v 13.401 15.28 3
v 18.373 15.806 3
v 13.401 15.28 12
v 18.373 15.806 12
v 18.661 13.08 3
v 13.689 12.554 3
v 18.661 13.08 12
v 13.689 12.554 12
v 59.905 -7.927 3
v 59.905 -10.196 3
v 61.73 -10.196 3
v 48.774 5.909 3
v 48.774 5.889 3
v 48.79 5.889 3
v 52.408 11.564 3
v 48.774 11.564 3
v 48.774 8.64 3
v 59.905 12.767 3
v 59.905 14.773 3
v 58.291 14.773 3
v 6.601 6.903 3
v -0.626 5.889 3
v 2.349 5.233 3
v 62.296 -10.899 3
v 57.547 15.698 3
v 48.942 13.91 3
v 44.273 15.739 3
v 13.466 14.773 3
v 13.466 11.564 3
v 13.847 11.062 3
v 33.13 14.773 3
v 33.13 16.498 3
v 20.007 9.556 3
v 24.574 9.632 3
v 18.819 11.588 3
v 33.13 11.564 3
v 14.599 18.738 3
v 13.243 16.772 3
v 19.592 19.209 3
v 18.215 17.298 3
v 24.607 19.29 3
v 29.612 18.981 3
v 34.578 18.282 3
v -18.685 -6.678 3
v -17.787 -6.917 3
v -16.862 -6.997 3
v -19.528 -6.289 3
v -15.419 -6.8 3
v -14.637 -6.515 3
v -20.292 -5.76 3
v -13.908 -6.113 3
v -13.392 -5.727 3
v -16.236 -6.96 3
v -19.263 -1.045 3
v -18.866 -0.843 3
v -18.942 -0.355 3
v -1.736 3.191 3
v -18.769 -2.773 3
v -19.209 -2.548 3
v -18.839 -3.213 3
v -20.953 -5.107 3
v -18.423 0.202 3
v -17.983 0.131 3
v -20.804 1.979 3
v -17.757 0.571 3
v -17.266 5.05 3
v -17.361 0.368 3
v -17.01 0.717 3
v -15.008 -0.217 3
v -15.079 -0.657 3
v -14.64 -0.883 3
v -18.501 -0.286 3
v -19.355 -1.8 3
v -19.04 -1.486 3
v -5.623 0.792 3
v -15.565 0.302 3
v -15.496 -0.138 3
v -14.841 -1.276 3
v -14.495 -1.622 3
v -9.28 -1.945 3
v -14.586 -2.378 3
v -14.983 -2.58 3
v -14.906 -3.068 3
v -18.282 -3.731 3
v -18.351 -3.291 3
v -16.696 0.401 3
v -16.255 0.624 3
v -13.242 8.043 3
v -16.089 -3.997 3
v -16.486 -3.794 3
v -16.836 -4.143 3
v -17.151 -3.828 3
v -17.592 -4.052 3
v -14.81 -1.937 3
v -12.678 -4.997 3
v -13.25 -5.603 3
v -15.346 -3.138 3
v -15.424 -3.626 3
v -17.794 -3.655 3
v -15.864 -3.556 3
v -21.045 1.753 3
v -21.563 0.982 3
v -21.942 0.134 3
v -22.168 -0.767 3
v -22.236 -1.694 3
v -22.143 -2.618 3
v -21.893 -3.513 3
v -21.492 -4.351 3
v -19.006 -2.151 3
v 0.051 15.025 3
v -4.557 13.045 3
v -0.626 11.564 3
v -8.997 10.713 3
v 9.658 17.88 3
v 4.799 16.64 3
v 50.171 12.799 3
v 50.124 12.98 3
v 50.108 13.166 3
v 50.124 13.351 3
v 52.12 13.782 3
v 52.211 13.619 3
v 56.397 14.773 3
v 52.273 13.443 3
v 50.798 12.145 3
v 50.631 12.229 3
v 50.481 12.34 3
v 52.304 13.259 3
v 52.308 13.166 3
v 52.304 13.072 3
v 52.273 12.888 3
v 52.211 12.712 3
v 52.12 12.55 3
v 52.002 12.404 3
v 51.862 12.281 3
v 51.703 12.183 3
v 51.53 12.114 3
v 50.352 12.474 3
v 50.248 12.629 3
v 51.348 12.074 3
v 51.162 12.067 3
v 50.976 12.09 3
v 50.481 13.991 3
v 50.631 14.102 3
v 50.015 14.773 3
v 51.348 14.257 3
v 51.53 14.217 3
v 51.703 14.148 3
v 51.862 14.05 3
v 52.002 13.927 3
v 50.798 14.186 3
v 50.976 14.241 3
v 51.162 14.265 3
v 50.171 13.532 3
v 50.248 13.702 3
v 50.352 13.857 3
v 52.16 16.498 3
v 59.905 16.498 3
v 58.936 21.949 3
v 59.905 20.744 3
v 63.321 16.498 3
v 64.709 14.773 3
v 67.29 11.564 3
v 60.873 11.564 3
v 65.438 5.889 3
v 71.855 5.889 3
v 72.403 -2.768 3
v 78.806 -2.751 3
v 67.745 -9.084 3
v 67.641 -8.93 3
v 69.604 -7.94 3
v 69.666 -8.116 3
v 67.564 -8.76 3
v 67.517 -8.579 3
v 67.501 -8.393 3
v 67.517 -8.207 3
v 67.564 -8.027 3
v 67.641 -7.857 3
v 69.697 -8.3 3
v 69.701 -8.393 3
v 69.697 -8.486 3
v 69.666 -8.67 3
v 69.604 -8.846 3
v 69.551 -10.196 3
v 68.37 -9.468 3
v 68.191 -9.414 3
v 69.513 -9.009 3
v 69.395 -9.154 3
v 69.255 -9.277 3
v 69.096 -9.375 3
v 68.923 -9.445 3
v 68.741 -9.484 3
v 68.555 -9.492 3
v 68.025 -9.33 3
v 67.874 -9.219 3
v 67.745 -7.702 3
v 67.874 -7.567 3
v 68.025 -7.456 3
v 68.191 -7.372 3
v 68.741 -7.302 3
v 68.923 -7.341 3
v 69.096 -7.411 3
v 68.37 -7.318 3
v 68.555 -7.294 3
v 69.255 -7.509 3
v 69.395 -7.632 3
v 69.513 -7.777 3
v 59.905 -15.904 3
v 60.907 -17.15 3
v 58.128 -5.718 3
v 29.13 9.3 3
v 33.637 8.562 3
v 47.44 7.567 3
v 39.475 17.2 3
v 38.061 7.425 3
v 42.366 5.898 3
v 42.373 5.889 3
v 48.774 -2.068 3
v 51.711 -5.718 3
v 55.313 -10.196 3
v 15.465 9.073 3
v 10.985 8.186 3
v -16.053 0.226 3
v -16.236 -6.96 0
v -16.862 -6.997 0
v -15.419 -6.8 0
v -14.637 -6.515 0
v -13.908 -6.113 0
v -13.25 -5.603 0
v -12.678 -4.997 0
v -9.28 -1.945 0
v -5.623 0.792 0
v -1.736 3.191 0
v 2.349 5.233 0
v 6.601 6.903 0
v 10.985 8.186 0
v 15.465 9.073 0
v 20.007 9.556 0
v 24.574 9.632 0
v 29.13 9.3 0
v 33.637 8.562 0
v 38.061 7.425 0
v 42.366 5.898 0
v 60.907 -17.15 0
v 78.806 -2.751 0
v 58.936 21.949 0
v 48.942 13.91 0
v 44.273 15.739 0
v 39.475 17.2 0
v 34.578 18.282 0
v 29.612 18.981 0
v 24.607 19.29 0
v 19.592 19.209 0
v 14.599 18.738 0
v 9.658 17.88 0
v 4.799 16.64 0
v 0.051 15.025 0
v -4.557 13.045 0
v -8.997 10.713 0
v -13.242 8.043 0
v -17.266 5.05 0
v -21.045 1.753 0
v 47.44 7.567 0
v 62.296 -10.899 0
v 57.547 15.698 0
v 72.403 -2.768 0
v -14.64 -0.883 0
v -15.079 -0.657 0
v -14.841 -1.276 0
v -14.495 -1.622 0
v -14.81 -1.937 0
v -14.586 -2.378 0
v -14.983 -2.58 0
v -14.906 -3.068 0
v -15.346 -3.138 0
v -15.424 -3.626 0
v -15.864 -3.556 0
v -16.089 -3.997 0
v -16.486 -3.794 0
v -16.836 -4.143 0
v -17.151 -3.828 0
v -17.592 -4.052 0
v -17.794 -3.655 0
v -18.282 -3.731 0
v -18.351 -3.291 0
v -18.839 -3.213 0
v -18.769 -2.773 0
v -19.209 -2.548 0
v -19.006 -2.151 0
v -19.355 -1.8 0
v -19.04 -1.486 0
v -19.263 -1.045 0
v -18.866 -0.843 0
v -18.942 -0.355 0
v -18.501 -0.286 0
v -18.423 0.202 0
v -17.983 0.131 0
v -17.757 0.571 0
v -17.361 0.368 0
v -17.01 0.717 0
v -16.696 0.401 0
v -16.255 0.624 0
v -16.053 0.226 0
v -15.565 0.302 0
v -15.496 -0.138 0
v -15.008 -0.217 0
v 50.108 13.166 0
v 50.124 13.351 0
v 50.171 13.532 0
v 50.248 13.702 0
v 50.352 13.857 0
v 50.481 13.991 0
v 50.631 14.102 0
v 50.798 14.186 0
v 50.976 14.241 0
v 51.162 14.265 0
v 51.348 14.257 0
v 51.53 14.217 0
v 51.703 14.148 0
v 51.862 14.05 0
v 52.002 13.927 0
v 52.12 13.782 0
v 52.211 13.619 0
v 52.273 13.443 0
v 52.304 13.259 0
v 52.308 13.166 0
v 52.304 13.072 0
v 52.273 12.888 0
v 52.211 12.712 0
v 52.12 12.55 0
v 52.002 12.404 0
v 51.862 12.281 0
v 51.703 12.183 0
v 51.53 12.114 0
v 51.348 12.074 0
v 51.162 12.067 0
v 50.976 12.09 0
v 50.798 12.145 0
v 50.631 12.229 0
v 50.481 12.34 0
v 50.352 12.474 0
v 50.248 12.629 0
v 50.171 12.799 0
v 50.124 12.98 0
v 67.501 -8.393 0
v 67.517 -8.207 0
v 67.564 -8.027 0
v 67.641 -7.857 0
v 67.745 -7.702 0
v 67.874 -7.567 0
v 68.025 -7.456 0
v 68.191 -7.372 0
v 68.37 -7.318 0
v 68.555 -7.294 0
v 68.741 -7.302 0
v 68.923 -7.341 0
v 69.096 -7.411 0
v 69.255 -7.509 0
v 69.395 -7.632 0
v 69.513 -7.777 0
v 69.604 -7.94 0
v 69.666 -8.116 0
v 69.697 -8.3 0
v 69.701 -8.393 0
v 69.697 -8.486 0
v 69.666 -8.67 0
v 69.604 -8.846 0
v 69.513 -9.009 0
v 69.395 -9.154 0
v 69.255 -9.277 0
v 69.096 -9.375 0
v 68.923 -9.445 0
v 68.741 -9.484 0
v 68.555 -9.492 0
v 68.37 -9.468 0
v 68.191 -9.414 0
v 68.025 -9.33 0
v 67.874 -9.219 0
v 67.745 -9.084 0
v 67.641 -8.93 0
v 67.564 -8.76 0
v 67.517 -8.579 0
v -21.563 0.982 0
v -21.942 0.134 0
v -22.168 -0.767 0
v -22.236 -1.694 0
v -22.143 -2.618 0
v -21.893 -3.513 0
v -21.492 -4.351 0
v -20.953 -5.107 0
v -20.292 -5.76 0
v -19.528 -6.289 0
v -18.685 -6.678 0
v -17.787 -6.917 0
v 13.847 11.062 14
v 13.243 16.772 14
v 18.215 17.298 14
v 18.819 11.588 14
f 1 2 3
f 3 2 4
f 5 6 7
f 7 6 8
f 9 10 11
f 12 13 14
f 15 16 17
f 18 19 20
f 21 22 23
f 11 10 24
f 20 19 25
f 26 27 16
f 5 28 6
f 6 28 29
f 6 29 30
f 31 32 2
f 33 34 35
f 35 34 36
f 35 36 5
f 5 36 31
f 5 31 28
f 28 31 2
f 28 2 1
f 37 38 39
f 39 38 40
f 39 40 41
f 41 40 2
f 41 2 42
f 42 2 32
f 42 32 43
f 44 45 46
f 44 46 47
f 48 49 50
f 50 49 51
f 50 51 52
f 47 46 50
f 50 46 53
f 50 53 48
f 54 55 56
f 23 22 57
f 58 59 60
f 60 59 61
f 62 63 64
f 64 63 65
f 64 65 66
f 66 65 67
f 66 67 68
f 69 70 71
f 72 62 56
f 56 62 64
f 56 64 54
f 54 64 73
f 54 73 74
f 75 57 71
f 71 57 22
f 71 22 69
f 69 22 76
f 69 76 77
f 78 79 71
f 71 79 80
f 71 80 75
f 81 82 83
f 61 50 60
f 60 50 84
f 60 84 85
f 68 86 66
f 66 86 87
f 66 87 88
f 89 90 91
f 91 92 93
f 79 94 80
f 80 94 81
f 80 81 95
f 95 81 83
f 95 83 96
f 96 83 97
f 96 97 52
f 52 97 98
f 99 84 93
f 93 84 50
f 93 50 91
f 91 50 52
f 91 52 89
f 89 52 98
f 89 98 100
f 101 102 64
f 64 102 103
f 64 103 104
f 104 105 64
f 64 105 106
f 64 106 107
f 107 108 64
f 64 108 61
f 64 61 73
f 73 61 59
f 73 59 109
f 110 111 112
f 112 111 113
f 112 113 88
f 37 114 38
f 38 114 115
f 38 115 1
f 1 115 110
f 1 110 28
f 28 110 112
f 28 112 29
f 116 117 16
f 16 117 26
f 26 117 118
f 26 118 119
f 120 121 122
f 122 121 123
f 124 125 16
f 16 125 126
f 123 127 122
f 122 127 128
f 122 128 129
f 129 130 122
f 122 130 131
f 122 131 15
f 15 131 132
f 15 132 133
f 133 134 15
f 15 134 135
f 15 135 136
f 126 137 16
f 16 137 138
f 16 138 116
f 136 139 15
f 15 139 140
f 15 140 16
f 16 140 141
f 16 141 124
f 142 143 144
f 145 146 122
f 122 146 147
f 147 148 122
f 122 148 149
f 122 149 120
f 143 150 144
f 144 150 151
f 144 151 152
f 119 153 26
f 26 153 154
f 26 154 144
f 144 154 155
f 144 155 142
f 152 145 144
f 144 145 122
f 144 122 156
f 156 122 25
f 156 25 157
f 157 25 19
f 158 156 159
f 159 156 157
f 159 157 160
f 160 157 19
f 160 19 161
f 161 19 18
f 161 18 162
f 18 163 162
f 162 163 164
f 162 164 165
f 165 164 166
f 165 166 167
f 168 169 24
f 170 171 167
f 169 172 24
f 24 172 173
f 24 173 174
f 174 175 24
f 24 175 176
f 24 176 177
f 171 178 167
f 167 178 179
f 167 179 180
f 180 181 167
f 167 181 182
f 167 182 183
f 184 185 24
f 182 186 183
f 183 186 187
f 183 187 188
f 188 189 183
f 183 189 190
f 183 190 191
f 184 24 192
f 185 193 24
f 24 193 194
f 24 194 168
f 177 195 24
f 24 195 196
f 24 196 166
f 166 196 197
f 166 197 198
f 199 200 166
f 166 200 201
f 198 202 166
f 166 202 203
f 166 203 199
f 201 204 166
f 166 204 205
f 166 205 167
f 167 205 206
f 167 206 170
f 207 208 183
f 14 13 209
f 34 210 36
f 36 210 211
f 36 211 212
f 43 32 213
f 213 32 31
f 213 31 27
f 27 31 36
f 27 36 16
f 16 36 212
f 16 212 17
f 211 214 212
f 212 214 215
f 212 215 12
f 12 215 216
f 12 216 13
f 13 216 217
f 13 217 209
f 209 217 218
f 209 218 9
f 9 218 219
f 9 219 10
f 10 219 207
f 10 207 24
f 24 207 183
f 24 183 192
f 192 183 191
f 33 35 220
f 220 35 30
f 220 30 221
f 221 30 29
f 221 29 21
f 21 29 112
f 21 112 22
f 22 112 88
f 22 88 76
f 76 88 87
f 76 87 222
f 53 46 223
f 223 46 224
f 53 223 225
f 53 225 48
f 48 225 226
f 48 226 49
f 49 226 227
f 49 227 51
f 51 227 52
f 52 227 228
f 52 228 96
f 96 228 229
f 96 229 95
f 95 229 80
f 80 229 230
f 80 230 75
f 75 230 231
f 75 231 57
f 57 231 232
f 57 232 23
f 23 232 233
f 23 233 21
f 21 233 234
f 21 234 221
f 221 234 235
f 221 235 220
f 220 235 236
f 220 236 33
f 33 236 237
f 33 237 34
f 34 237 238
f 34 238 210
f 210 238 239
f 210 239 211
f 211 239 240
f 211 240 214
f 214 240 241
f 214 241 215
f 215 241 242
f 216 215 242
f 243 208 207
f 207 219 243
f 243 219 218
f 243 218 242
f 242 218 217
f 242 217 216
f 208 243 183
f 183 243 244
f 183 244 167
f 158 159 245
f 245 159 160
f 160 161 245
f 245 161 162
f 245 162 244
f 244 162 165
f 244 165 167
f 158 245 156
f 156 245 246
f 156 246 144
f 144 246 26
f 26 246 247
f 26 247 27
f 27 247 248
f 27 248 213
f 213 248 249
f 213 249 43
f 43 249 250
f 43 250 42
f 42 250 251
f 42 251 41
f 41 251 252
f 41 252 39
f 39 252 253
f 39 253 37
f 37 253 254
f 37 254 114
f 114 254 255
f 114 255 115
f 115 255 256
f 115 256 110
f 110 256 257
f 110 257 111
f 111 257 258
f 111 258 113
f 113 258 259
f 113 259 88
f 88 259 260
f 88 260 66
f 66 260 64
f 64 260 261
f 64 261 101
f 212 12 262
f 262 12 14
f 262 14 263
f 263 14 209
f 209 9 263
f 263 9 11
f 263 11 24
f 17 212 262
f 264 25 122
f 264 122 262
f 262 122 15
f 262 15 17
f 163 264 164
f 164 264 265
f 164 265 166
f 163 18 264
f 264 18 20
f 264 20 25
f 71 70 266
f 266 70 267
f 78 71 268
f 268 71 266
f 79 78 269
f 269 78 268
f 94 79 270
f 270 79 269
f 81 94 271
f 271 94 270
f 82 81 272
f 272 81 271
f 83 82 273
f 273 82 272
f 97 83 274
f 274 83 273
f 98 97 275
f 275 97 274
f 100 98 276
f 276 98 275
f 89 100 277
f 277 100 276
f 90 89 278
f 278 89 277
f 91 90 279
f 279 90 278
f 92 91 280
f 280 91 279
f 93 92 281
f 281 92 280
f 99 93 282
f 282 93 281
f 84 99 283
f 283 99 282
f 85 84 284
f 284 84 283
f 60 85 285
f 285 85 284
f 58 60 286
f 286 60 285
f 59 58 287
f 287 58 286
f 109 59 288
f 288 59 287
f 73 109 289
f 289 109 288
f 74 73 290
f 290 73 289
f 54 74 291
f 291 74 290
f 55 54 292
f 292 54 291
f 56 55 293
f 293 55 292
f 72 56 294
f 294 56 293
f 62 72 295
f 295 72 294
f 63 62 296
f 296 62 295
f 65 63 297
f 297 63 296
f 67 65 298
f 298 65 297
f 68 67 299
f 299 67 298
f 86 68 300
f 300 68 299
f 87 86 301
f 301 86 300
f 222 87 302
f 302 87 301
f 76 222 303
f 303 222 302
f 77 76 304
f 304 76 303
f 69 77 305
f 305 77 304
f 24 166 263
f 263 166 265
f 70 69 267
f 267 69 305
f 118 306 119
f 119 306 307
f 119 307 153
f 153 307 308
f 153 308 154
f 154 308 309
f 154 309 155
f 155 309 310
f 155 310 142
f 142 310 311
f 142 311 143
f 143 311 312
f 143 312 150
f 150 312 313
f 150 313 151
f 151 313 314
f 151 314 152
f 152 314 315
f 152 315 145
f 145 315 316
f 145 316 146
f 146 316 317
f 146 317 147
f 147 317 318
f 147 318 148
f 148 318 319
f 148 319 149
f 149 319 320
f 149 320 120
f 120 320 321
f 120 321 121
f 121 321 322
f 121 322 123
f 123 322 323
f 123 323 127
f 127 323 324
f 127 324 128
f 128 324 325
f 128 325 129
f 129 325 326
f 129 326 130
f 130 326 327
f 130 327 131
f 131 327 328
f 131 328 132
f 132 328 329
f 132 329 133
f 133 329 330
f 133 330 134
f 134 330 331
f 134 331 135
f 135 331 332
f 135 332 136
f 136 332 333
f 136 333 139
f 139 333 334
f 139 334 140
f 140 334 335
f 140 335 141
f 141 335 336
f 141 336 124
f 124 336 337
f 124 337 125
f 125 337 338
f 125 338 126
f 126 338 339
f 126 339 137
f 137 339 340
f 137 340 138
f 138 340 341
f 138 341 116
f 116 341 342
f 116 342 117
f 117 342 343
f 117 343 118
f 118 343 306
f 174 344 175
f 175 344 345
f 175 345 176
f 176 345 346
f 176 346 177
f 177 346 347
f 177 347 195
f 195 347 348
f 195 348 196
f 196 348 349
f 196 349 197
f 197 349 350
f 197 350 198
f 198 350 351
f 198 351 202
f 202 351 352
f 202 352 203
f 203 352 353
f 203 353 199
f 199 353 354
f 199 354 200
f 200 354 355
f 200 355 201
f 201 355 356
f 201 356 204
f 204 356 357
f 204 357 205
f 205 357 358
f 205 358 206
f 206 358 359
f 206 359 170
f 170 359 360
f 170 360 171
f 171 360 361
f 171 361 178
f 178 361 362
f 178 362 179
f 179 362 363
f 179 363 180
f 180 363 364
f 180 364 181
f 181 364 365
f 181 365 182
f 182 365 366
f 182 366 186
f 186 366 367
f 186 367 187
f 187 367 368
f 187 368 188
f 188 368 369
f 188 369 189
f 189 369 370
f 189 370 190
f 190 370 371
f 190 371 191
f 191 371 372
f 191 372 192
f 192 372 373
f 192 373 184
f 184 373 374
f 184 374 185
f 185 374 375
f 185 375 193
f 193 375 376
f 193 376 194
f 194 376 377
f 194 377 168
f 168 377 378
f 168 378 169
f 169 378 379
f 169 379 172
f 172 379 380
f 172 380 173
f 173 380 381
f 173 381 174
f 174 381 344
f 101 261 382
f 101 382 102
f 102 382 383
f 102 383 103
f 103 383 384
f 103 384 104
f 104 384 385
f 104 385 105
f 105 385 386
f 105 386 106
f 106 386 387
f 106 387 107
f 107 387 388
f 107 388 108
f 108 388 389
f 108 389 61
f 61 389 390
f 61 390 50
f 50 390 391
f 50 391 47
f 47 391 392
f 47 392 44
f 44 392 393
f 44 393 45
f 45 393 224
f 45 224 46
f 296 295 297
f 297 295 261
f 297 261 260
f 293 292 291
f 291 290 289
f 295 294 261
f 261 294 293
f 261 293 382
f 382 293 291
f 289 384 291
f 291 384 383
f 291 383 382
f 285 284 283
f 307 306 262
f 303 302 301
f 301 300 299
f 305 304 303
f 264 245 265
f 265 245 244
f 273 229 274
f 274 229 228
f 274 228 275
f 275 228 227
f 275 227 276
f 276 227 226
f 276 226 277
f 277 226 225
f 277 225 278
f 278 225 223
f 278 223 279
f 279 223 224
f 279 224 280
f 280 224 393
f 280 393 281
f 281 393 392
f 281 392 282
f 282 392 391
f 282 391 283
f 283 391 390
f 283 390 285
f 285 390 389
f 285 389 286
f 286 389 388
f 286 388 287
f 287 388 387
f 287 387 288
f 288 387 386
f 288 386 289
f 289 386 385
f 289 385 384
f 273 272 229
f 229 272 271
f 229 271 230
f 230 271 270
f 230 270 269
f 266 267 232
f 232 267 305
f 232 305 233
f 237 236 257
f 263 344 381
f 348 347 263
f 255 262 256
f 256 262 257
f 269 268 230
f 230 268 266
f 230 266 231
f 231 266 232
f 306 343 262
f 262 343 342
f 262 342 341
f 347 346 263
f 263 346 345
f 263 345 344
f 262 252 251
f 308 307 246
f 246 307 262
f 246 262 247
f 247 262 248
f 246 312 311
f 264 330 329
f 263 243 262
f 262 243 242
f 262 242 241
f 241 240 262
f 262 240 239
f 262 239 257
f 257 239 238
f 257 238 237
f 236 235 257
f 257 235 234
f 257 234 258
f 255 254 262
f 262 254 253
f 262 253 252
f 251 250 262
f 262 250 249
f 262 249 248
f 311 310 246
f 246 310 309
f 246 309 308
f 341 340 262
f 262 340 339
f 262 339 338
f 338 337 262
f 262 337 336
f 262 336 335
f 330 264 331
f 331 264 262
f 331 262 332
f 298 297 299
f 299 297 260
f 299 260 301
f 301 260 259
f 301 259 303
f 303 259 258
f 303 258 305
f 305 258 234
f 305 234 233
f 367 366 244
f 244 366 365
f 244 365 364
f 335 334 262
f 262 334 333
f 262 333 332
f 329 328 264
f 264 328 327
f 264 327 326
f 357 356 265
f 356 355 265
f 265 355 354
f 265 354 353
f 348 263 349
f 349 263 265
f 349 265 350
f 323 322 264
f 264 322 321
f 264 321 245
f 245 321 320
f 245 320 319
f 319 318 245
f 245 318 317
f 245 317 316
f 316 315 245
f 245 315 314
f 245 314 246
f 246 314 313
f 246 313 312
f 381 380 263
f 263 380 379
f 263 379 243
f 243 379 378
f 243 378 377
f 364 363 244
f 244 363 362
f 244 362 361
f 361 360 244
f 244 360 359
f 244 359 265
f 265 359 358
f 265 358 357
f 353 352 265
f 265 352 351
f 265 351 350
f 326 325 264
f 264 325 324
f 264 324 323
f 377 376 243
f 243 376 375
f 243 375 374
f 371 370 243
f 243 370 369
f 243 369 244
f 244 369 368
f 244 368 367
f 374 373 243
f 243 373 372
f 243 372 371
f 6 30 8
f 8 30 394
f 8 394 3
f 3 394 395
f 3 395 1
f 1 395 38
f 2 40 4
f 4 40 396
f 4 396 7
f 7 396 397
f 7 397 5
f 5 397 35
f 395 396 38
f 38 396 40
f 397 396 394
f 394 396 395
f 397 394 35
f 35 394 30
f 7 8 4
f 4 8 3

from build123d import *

# Parameters (mm, degrees)
BOSS_EXTRUDE1_OUTLINE_R = 1.1
BOSS_EXTRUDE1_DEPTH     = 3
BOSS_EXTRUDE2_DEPTH     = 11
BOSS_EXTRUDE3_REACH     = 87.92
SKETCH5_W               = 5
SKETCH5_H               = 2


# Read off the part's stored shape, not the designer's step: Boss-Extrude1
with BuildPart() as part:
    # Boss-Extrude1 outline → Boss-Extrude1 (new body)
    with BuildSketch(Plane.XY):
        with BuildLine():
            Line((-16.861546239, -6.996941033), (-16.235942246, -6.960409413))
            ThreePointArc((-16.235942246, -6.960409413), (-14.264395542, -6.327834493), (-12.678246106, -4.996941033))
            ThreePointArc((-12.678246106, -4.996941033), (13.21501224, 8.679812005), (42.365911354, 5.89781951))
            Line((42.365911354, 5.89781951), (60.907203246, -17.149637471))
            Line((60.907203246, -17.149637471), (78.805808552, -2.750510239))
            Line((78.805808552, -2.750510239), (58.935546262, 21.948902186))
            Line((58.935546262, 21.948902186), (48.942403416, 13.909586673))
            ThreePointArc((48.942403416, 13.909586673), (12.120494673, 18.357071745), (-21.044846371, 1.753058967))
            ThreePointArc((-21.044846371, 1.753058967), (-21.710837424, -3.940345657), (-16.861546239, -6.996941033))
        make_face()
        Polygon((-15.008213446, -0.217369118), (-15.079375496, -0.657391661), (-14.639590345, -0.883380518), (-14.841297197, -1.275911723), (-14.495267888, -1.621941033), (-14.810453449, -1.937126594), (-14.586057014, -2.377726392), (-14.983250587, -2.580016139), (-14.906078059, -3.068407726), (-15.346355155, -3.137977509), (-15.423969348, -3.626299102), (-15.864183346, -3.556331166), (-16.088978162, -3.996727842), (-16.485988624, -3.794078961), (-16.835934444, -4.143392379), (-17.150834826, -3.827921897), (-17.591637385, -4.051919766), (-17.793567832, -3.654543407), (-18.282029013, -3.731274208), (-18.351200586, -3.290934374), (-18.839451787, -3.212878581), (-18.769085755, -2.772728041), (-19.209278949, -2.547535028), (-19.006271099, -2.150708001), (-19.355267888, -1.800446409), (-19.039512742, -1.485831463), (-19.263111863, -1.044826504), (-18.865553043, -0.843255522), (-18.941842054, -0.354725146), (-18.501439842, -0.285951839), (-18.422942512, 0.202228569), (-17.982855791, 0.131464499), (-17.757264764, 0.571453851), (-17.360621498, 0.368087198), (-17.01004442, 0.716767072), (-16.695715168, 0.400727521), (-16.254508168, 0.623927711), (-16.053296817, 0.226186755), (-15.564697645, 0.302033914), (-15.496322662, -0.138430316), align=None, mode=Mode.SUBTRACT)
        with Locations((68.60124446, -8.393050085)):
            Circle(BOSS_EXTRUDE1_OUTLINE_R, mode=Mode.SUBTRACT)
        Polygon((72.402709352, -2.767977433), (62.295668796, -10.898921739), (47.439985558, 7.567198225), (57.547026113, 15.698142531), align=None, mode=Mode.SUBTRACT)
        with Locations((51.208221203, 13.165538506)):
            Circle(BOSS_EXTRUDE1_OUTLINE_R, mode=Mode.SUBTRACT)
    extrude(amount=BOSS_EXTRUDE1_DEPTH)

    # Sketch4 → Boss-Extrude2 (add)
    with BuildSketch(Plane.XY.offset(3)):
        Polygon((13.242665436, 16.771623459), (18.214871239, 17.298092309), (18.372811894, 15.806430568), (13.40060609, 15.279961718), align=None)
        Polygon((13.847221233, 11.061929815), (18.819427036, 11.588398665), (18.661486381, 13.080060406), (13.689280578, 12.553591556), align=None)
    extrude(amount=BOSS_EXTRUDE2_DEPTH)

    # Sketch5 → Boss-Extrude3 (add, up to next)
    with BuildSketch(Plane(origin=(-1.16269721, 10.981029202, 0), x_dir=(0.994441160657232, 0.10529376995196534, 0), z_dir=(-0.10529376995196534, 0.994441160657232, 0)), mode=Mode.PRIVATE) as boss_extrude3_sk1:
        with Locations((17.434999048, -13)):
            Rectangle(SKETCH5_W, SKETCH5_H)
    boss_extrude3_tool1 = extrude(boss_extrude3_sk1.sketch, amount=BOSS_EXTRUDE3_REACH, mode=Mode.PRIVATE) - part.part
    add(boss_extrude3_tool1.solids().sort_by_distance((16.175383, 12.816826, 13))[0])


solid = part.part
